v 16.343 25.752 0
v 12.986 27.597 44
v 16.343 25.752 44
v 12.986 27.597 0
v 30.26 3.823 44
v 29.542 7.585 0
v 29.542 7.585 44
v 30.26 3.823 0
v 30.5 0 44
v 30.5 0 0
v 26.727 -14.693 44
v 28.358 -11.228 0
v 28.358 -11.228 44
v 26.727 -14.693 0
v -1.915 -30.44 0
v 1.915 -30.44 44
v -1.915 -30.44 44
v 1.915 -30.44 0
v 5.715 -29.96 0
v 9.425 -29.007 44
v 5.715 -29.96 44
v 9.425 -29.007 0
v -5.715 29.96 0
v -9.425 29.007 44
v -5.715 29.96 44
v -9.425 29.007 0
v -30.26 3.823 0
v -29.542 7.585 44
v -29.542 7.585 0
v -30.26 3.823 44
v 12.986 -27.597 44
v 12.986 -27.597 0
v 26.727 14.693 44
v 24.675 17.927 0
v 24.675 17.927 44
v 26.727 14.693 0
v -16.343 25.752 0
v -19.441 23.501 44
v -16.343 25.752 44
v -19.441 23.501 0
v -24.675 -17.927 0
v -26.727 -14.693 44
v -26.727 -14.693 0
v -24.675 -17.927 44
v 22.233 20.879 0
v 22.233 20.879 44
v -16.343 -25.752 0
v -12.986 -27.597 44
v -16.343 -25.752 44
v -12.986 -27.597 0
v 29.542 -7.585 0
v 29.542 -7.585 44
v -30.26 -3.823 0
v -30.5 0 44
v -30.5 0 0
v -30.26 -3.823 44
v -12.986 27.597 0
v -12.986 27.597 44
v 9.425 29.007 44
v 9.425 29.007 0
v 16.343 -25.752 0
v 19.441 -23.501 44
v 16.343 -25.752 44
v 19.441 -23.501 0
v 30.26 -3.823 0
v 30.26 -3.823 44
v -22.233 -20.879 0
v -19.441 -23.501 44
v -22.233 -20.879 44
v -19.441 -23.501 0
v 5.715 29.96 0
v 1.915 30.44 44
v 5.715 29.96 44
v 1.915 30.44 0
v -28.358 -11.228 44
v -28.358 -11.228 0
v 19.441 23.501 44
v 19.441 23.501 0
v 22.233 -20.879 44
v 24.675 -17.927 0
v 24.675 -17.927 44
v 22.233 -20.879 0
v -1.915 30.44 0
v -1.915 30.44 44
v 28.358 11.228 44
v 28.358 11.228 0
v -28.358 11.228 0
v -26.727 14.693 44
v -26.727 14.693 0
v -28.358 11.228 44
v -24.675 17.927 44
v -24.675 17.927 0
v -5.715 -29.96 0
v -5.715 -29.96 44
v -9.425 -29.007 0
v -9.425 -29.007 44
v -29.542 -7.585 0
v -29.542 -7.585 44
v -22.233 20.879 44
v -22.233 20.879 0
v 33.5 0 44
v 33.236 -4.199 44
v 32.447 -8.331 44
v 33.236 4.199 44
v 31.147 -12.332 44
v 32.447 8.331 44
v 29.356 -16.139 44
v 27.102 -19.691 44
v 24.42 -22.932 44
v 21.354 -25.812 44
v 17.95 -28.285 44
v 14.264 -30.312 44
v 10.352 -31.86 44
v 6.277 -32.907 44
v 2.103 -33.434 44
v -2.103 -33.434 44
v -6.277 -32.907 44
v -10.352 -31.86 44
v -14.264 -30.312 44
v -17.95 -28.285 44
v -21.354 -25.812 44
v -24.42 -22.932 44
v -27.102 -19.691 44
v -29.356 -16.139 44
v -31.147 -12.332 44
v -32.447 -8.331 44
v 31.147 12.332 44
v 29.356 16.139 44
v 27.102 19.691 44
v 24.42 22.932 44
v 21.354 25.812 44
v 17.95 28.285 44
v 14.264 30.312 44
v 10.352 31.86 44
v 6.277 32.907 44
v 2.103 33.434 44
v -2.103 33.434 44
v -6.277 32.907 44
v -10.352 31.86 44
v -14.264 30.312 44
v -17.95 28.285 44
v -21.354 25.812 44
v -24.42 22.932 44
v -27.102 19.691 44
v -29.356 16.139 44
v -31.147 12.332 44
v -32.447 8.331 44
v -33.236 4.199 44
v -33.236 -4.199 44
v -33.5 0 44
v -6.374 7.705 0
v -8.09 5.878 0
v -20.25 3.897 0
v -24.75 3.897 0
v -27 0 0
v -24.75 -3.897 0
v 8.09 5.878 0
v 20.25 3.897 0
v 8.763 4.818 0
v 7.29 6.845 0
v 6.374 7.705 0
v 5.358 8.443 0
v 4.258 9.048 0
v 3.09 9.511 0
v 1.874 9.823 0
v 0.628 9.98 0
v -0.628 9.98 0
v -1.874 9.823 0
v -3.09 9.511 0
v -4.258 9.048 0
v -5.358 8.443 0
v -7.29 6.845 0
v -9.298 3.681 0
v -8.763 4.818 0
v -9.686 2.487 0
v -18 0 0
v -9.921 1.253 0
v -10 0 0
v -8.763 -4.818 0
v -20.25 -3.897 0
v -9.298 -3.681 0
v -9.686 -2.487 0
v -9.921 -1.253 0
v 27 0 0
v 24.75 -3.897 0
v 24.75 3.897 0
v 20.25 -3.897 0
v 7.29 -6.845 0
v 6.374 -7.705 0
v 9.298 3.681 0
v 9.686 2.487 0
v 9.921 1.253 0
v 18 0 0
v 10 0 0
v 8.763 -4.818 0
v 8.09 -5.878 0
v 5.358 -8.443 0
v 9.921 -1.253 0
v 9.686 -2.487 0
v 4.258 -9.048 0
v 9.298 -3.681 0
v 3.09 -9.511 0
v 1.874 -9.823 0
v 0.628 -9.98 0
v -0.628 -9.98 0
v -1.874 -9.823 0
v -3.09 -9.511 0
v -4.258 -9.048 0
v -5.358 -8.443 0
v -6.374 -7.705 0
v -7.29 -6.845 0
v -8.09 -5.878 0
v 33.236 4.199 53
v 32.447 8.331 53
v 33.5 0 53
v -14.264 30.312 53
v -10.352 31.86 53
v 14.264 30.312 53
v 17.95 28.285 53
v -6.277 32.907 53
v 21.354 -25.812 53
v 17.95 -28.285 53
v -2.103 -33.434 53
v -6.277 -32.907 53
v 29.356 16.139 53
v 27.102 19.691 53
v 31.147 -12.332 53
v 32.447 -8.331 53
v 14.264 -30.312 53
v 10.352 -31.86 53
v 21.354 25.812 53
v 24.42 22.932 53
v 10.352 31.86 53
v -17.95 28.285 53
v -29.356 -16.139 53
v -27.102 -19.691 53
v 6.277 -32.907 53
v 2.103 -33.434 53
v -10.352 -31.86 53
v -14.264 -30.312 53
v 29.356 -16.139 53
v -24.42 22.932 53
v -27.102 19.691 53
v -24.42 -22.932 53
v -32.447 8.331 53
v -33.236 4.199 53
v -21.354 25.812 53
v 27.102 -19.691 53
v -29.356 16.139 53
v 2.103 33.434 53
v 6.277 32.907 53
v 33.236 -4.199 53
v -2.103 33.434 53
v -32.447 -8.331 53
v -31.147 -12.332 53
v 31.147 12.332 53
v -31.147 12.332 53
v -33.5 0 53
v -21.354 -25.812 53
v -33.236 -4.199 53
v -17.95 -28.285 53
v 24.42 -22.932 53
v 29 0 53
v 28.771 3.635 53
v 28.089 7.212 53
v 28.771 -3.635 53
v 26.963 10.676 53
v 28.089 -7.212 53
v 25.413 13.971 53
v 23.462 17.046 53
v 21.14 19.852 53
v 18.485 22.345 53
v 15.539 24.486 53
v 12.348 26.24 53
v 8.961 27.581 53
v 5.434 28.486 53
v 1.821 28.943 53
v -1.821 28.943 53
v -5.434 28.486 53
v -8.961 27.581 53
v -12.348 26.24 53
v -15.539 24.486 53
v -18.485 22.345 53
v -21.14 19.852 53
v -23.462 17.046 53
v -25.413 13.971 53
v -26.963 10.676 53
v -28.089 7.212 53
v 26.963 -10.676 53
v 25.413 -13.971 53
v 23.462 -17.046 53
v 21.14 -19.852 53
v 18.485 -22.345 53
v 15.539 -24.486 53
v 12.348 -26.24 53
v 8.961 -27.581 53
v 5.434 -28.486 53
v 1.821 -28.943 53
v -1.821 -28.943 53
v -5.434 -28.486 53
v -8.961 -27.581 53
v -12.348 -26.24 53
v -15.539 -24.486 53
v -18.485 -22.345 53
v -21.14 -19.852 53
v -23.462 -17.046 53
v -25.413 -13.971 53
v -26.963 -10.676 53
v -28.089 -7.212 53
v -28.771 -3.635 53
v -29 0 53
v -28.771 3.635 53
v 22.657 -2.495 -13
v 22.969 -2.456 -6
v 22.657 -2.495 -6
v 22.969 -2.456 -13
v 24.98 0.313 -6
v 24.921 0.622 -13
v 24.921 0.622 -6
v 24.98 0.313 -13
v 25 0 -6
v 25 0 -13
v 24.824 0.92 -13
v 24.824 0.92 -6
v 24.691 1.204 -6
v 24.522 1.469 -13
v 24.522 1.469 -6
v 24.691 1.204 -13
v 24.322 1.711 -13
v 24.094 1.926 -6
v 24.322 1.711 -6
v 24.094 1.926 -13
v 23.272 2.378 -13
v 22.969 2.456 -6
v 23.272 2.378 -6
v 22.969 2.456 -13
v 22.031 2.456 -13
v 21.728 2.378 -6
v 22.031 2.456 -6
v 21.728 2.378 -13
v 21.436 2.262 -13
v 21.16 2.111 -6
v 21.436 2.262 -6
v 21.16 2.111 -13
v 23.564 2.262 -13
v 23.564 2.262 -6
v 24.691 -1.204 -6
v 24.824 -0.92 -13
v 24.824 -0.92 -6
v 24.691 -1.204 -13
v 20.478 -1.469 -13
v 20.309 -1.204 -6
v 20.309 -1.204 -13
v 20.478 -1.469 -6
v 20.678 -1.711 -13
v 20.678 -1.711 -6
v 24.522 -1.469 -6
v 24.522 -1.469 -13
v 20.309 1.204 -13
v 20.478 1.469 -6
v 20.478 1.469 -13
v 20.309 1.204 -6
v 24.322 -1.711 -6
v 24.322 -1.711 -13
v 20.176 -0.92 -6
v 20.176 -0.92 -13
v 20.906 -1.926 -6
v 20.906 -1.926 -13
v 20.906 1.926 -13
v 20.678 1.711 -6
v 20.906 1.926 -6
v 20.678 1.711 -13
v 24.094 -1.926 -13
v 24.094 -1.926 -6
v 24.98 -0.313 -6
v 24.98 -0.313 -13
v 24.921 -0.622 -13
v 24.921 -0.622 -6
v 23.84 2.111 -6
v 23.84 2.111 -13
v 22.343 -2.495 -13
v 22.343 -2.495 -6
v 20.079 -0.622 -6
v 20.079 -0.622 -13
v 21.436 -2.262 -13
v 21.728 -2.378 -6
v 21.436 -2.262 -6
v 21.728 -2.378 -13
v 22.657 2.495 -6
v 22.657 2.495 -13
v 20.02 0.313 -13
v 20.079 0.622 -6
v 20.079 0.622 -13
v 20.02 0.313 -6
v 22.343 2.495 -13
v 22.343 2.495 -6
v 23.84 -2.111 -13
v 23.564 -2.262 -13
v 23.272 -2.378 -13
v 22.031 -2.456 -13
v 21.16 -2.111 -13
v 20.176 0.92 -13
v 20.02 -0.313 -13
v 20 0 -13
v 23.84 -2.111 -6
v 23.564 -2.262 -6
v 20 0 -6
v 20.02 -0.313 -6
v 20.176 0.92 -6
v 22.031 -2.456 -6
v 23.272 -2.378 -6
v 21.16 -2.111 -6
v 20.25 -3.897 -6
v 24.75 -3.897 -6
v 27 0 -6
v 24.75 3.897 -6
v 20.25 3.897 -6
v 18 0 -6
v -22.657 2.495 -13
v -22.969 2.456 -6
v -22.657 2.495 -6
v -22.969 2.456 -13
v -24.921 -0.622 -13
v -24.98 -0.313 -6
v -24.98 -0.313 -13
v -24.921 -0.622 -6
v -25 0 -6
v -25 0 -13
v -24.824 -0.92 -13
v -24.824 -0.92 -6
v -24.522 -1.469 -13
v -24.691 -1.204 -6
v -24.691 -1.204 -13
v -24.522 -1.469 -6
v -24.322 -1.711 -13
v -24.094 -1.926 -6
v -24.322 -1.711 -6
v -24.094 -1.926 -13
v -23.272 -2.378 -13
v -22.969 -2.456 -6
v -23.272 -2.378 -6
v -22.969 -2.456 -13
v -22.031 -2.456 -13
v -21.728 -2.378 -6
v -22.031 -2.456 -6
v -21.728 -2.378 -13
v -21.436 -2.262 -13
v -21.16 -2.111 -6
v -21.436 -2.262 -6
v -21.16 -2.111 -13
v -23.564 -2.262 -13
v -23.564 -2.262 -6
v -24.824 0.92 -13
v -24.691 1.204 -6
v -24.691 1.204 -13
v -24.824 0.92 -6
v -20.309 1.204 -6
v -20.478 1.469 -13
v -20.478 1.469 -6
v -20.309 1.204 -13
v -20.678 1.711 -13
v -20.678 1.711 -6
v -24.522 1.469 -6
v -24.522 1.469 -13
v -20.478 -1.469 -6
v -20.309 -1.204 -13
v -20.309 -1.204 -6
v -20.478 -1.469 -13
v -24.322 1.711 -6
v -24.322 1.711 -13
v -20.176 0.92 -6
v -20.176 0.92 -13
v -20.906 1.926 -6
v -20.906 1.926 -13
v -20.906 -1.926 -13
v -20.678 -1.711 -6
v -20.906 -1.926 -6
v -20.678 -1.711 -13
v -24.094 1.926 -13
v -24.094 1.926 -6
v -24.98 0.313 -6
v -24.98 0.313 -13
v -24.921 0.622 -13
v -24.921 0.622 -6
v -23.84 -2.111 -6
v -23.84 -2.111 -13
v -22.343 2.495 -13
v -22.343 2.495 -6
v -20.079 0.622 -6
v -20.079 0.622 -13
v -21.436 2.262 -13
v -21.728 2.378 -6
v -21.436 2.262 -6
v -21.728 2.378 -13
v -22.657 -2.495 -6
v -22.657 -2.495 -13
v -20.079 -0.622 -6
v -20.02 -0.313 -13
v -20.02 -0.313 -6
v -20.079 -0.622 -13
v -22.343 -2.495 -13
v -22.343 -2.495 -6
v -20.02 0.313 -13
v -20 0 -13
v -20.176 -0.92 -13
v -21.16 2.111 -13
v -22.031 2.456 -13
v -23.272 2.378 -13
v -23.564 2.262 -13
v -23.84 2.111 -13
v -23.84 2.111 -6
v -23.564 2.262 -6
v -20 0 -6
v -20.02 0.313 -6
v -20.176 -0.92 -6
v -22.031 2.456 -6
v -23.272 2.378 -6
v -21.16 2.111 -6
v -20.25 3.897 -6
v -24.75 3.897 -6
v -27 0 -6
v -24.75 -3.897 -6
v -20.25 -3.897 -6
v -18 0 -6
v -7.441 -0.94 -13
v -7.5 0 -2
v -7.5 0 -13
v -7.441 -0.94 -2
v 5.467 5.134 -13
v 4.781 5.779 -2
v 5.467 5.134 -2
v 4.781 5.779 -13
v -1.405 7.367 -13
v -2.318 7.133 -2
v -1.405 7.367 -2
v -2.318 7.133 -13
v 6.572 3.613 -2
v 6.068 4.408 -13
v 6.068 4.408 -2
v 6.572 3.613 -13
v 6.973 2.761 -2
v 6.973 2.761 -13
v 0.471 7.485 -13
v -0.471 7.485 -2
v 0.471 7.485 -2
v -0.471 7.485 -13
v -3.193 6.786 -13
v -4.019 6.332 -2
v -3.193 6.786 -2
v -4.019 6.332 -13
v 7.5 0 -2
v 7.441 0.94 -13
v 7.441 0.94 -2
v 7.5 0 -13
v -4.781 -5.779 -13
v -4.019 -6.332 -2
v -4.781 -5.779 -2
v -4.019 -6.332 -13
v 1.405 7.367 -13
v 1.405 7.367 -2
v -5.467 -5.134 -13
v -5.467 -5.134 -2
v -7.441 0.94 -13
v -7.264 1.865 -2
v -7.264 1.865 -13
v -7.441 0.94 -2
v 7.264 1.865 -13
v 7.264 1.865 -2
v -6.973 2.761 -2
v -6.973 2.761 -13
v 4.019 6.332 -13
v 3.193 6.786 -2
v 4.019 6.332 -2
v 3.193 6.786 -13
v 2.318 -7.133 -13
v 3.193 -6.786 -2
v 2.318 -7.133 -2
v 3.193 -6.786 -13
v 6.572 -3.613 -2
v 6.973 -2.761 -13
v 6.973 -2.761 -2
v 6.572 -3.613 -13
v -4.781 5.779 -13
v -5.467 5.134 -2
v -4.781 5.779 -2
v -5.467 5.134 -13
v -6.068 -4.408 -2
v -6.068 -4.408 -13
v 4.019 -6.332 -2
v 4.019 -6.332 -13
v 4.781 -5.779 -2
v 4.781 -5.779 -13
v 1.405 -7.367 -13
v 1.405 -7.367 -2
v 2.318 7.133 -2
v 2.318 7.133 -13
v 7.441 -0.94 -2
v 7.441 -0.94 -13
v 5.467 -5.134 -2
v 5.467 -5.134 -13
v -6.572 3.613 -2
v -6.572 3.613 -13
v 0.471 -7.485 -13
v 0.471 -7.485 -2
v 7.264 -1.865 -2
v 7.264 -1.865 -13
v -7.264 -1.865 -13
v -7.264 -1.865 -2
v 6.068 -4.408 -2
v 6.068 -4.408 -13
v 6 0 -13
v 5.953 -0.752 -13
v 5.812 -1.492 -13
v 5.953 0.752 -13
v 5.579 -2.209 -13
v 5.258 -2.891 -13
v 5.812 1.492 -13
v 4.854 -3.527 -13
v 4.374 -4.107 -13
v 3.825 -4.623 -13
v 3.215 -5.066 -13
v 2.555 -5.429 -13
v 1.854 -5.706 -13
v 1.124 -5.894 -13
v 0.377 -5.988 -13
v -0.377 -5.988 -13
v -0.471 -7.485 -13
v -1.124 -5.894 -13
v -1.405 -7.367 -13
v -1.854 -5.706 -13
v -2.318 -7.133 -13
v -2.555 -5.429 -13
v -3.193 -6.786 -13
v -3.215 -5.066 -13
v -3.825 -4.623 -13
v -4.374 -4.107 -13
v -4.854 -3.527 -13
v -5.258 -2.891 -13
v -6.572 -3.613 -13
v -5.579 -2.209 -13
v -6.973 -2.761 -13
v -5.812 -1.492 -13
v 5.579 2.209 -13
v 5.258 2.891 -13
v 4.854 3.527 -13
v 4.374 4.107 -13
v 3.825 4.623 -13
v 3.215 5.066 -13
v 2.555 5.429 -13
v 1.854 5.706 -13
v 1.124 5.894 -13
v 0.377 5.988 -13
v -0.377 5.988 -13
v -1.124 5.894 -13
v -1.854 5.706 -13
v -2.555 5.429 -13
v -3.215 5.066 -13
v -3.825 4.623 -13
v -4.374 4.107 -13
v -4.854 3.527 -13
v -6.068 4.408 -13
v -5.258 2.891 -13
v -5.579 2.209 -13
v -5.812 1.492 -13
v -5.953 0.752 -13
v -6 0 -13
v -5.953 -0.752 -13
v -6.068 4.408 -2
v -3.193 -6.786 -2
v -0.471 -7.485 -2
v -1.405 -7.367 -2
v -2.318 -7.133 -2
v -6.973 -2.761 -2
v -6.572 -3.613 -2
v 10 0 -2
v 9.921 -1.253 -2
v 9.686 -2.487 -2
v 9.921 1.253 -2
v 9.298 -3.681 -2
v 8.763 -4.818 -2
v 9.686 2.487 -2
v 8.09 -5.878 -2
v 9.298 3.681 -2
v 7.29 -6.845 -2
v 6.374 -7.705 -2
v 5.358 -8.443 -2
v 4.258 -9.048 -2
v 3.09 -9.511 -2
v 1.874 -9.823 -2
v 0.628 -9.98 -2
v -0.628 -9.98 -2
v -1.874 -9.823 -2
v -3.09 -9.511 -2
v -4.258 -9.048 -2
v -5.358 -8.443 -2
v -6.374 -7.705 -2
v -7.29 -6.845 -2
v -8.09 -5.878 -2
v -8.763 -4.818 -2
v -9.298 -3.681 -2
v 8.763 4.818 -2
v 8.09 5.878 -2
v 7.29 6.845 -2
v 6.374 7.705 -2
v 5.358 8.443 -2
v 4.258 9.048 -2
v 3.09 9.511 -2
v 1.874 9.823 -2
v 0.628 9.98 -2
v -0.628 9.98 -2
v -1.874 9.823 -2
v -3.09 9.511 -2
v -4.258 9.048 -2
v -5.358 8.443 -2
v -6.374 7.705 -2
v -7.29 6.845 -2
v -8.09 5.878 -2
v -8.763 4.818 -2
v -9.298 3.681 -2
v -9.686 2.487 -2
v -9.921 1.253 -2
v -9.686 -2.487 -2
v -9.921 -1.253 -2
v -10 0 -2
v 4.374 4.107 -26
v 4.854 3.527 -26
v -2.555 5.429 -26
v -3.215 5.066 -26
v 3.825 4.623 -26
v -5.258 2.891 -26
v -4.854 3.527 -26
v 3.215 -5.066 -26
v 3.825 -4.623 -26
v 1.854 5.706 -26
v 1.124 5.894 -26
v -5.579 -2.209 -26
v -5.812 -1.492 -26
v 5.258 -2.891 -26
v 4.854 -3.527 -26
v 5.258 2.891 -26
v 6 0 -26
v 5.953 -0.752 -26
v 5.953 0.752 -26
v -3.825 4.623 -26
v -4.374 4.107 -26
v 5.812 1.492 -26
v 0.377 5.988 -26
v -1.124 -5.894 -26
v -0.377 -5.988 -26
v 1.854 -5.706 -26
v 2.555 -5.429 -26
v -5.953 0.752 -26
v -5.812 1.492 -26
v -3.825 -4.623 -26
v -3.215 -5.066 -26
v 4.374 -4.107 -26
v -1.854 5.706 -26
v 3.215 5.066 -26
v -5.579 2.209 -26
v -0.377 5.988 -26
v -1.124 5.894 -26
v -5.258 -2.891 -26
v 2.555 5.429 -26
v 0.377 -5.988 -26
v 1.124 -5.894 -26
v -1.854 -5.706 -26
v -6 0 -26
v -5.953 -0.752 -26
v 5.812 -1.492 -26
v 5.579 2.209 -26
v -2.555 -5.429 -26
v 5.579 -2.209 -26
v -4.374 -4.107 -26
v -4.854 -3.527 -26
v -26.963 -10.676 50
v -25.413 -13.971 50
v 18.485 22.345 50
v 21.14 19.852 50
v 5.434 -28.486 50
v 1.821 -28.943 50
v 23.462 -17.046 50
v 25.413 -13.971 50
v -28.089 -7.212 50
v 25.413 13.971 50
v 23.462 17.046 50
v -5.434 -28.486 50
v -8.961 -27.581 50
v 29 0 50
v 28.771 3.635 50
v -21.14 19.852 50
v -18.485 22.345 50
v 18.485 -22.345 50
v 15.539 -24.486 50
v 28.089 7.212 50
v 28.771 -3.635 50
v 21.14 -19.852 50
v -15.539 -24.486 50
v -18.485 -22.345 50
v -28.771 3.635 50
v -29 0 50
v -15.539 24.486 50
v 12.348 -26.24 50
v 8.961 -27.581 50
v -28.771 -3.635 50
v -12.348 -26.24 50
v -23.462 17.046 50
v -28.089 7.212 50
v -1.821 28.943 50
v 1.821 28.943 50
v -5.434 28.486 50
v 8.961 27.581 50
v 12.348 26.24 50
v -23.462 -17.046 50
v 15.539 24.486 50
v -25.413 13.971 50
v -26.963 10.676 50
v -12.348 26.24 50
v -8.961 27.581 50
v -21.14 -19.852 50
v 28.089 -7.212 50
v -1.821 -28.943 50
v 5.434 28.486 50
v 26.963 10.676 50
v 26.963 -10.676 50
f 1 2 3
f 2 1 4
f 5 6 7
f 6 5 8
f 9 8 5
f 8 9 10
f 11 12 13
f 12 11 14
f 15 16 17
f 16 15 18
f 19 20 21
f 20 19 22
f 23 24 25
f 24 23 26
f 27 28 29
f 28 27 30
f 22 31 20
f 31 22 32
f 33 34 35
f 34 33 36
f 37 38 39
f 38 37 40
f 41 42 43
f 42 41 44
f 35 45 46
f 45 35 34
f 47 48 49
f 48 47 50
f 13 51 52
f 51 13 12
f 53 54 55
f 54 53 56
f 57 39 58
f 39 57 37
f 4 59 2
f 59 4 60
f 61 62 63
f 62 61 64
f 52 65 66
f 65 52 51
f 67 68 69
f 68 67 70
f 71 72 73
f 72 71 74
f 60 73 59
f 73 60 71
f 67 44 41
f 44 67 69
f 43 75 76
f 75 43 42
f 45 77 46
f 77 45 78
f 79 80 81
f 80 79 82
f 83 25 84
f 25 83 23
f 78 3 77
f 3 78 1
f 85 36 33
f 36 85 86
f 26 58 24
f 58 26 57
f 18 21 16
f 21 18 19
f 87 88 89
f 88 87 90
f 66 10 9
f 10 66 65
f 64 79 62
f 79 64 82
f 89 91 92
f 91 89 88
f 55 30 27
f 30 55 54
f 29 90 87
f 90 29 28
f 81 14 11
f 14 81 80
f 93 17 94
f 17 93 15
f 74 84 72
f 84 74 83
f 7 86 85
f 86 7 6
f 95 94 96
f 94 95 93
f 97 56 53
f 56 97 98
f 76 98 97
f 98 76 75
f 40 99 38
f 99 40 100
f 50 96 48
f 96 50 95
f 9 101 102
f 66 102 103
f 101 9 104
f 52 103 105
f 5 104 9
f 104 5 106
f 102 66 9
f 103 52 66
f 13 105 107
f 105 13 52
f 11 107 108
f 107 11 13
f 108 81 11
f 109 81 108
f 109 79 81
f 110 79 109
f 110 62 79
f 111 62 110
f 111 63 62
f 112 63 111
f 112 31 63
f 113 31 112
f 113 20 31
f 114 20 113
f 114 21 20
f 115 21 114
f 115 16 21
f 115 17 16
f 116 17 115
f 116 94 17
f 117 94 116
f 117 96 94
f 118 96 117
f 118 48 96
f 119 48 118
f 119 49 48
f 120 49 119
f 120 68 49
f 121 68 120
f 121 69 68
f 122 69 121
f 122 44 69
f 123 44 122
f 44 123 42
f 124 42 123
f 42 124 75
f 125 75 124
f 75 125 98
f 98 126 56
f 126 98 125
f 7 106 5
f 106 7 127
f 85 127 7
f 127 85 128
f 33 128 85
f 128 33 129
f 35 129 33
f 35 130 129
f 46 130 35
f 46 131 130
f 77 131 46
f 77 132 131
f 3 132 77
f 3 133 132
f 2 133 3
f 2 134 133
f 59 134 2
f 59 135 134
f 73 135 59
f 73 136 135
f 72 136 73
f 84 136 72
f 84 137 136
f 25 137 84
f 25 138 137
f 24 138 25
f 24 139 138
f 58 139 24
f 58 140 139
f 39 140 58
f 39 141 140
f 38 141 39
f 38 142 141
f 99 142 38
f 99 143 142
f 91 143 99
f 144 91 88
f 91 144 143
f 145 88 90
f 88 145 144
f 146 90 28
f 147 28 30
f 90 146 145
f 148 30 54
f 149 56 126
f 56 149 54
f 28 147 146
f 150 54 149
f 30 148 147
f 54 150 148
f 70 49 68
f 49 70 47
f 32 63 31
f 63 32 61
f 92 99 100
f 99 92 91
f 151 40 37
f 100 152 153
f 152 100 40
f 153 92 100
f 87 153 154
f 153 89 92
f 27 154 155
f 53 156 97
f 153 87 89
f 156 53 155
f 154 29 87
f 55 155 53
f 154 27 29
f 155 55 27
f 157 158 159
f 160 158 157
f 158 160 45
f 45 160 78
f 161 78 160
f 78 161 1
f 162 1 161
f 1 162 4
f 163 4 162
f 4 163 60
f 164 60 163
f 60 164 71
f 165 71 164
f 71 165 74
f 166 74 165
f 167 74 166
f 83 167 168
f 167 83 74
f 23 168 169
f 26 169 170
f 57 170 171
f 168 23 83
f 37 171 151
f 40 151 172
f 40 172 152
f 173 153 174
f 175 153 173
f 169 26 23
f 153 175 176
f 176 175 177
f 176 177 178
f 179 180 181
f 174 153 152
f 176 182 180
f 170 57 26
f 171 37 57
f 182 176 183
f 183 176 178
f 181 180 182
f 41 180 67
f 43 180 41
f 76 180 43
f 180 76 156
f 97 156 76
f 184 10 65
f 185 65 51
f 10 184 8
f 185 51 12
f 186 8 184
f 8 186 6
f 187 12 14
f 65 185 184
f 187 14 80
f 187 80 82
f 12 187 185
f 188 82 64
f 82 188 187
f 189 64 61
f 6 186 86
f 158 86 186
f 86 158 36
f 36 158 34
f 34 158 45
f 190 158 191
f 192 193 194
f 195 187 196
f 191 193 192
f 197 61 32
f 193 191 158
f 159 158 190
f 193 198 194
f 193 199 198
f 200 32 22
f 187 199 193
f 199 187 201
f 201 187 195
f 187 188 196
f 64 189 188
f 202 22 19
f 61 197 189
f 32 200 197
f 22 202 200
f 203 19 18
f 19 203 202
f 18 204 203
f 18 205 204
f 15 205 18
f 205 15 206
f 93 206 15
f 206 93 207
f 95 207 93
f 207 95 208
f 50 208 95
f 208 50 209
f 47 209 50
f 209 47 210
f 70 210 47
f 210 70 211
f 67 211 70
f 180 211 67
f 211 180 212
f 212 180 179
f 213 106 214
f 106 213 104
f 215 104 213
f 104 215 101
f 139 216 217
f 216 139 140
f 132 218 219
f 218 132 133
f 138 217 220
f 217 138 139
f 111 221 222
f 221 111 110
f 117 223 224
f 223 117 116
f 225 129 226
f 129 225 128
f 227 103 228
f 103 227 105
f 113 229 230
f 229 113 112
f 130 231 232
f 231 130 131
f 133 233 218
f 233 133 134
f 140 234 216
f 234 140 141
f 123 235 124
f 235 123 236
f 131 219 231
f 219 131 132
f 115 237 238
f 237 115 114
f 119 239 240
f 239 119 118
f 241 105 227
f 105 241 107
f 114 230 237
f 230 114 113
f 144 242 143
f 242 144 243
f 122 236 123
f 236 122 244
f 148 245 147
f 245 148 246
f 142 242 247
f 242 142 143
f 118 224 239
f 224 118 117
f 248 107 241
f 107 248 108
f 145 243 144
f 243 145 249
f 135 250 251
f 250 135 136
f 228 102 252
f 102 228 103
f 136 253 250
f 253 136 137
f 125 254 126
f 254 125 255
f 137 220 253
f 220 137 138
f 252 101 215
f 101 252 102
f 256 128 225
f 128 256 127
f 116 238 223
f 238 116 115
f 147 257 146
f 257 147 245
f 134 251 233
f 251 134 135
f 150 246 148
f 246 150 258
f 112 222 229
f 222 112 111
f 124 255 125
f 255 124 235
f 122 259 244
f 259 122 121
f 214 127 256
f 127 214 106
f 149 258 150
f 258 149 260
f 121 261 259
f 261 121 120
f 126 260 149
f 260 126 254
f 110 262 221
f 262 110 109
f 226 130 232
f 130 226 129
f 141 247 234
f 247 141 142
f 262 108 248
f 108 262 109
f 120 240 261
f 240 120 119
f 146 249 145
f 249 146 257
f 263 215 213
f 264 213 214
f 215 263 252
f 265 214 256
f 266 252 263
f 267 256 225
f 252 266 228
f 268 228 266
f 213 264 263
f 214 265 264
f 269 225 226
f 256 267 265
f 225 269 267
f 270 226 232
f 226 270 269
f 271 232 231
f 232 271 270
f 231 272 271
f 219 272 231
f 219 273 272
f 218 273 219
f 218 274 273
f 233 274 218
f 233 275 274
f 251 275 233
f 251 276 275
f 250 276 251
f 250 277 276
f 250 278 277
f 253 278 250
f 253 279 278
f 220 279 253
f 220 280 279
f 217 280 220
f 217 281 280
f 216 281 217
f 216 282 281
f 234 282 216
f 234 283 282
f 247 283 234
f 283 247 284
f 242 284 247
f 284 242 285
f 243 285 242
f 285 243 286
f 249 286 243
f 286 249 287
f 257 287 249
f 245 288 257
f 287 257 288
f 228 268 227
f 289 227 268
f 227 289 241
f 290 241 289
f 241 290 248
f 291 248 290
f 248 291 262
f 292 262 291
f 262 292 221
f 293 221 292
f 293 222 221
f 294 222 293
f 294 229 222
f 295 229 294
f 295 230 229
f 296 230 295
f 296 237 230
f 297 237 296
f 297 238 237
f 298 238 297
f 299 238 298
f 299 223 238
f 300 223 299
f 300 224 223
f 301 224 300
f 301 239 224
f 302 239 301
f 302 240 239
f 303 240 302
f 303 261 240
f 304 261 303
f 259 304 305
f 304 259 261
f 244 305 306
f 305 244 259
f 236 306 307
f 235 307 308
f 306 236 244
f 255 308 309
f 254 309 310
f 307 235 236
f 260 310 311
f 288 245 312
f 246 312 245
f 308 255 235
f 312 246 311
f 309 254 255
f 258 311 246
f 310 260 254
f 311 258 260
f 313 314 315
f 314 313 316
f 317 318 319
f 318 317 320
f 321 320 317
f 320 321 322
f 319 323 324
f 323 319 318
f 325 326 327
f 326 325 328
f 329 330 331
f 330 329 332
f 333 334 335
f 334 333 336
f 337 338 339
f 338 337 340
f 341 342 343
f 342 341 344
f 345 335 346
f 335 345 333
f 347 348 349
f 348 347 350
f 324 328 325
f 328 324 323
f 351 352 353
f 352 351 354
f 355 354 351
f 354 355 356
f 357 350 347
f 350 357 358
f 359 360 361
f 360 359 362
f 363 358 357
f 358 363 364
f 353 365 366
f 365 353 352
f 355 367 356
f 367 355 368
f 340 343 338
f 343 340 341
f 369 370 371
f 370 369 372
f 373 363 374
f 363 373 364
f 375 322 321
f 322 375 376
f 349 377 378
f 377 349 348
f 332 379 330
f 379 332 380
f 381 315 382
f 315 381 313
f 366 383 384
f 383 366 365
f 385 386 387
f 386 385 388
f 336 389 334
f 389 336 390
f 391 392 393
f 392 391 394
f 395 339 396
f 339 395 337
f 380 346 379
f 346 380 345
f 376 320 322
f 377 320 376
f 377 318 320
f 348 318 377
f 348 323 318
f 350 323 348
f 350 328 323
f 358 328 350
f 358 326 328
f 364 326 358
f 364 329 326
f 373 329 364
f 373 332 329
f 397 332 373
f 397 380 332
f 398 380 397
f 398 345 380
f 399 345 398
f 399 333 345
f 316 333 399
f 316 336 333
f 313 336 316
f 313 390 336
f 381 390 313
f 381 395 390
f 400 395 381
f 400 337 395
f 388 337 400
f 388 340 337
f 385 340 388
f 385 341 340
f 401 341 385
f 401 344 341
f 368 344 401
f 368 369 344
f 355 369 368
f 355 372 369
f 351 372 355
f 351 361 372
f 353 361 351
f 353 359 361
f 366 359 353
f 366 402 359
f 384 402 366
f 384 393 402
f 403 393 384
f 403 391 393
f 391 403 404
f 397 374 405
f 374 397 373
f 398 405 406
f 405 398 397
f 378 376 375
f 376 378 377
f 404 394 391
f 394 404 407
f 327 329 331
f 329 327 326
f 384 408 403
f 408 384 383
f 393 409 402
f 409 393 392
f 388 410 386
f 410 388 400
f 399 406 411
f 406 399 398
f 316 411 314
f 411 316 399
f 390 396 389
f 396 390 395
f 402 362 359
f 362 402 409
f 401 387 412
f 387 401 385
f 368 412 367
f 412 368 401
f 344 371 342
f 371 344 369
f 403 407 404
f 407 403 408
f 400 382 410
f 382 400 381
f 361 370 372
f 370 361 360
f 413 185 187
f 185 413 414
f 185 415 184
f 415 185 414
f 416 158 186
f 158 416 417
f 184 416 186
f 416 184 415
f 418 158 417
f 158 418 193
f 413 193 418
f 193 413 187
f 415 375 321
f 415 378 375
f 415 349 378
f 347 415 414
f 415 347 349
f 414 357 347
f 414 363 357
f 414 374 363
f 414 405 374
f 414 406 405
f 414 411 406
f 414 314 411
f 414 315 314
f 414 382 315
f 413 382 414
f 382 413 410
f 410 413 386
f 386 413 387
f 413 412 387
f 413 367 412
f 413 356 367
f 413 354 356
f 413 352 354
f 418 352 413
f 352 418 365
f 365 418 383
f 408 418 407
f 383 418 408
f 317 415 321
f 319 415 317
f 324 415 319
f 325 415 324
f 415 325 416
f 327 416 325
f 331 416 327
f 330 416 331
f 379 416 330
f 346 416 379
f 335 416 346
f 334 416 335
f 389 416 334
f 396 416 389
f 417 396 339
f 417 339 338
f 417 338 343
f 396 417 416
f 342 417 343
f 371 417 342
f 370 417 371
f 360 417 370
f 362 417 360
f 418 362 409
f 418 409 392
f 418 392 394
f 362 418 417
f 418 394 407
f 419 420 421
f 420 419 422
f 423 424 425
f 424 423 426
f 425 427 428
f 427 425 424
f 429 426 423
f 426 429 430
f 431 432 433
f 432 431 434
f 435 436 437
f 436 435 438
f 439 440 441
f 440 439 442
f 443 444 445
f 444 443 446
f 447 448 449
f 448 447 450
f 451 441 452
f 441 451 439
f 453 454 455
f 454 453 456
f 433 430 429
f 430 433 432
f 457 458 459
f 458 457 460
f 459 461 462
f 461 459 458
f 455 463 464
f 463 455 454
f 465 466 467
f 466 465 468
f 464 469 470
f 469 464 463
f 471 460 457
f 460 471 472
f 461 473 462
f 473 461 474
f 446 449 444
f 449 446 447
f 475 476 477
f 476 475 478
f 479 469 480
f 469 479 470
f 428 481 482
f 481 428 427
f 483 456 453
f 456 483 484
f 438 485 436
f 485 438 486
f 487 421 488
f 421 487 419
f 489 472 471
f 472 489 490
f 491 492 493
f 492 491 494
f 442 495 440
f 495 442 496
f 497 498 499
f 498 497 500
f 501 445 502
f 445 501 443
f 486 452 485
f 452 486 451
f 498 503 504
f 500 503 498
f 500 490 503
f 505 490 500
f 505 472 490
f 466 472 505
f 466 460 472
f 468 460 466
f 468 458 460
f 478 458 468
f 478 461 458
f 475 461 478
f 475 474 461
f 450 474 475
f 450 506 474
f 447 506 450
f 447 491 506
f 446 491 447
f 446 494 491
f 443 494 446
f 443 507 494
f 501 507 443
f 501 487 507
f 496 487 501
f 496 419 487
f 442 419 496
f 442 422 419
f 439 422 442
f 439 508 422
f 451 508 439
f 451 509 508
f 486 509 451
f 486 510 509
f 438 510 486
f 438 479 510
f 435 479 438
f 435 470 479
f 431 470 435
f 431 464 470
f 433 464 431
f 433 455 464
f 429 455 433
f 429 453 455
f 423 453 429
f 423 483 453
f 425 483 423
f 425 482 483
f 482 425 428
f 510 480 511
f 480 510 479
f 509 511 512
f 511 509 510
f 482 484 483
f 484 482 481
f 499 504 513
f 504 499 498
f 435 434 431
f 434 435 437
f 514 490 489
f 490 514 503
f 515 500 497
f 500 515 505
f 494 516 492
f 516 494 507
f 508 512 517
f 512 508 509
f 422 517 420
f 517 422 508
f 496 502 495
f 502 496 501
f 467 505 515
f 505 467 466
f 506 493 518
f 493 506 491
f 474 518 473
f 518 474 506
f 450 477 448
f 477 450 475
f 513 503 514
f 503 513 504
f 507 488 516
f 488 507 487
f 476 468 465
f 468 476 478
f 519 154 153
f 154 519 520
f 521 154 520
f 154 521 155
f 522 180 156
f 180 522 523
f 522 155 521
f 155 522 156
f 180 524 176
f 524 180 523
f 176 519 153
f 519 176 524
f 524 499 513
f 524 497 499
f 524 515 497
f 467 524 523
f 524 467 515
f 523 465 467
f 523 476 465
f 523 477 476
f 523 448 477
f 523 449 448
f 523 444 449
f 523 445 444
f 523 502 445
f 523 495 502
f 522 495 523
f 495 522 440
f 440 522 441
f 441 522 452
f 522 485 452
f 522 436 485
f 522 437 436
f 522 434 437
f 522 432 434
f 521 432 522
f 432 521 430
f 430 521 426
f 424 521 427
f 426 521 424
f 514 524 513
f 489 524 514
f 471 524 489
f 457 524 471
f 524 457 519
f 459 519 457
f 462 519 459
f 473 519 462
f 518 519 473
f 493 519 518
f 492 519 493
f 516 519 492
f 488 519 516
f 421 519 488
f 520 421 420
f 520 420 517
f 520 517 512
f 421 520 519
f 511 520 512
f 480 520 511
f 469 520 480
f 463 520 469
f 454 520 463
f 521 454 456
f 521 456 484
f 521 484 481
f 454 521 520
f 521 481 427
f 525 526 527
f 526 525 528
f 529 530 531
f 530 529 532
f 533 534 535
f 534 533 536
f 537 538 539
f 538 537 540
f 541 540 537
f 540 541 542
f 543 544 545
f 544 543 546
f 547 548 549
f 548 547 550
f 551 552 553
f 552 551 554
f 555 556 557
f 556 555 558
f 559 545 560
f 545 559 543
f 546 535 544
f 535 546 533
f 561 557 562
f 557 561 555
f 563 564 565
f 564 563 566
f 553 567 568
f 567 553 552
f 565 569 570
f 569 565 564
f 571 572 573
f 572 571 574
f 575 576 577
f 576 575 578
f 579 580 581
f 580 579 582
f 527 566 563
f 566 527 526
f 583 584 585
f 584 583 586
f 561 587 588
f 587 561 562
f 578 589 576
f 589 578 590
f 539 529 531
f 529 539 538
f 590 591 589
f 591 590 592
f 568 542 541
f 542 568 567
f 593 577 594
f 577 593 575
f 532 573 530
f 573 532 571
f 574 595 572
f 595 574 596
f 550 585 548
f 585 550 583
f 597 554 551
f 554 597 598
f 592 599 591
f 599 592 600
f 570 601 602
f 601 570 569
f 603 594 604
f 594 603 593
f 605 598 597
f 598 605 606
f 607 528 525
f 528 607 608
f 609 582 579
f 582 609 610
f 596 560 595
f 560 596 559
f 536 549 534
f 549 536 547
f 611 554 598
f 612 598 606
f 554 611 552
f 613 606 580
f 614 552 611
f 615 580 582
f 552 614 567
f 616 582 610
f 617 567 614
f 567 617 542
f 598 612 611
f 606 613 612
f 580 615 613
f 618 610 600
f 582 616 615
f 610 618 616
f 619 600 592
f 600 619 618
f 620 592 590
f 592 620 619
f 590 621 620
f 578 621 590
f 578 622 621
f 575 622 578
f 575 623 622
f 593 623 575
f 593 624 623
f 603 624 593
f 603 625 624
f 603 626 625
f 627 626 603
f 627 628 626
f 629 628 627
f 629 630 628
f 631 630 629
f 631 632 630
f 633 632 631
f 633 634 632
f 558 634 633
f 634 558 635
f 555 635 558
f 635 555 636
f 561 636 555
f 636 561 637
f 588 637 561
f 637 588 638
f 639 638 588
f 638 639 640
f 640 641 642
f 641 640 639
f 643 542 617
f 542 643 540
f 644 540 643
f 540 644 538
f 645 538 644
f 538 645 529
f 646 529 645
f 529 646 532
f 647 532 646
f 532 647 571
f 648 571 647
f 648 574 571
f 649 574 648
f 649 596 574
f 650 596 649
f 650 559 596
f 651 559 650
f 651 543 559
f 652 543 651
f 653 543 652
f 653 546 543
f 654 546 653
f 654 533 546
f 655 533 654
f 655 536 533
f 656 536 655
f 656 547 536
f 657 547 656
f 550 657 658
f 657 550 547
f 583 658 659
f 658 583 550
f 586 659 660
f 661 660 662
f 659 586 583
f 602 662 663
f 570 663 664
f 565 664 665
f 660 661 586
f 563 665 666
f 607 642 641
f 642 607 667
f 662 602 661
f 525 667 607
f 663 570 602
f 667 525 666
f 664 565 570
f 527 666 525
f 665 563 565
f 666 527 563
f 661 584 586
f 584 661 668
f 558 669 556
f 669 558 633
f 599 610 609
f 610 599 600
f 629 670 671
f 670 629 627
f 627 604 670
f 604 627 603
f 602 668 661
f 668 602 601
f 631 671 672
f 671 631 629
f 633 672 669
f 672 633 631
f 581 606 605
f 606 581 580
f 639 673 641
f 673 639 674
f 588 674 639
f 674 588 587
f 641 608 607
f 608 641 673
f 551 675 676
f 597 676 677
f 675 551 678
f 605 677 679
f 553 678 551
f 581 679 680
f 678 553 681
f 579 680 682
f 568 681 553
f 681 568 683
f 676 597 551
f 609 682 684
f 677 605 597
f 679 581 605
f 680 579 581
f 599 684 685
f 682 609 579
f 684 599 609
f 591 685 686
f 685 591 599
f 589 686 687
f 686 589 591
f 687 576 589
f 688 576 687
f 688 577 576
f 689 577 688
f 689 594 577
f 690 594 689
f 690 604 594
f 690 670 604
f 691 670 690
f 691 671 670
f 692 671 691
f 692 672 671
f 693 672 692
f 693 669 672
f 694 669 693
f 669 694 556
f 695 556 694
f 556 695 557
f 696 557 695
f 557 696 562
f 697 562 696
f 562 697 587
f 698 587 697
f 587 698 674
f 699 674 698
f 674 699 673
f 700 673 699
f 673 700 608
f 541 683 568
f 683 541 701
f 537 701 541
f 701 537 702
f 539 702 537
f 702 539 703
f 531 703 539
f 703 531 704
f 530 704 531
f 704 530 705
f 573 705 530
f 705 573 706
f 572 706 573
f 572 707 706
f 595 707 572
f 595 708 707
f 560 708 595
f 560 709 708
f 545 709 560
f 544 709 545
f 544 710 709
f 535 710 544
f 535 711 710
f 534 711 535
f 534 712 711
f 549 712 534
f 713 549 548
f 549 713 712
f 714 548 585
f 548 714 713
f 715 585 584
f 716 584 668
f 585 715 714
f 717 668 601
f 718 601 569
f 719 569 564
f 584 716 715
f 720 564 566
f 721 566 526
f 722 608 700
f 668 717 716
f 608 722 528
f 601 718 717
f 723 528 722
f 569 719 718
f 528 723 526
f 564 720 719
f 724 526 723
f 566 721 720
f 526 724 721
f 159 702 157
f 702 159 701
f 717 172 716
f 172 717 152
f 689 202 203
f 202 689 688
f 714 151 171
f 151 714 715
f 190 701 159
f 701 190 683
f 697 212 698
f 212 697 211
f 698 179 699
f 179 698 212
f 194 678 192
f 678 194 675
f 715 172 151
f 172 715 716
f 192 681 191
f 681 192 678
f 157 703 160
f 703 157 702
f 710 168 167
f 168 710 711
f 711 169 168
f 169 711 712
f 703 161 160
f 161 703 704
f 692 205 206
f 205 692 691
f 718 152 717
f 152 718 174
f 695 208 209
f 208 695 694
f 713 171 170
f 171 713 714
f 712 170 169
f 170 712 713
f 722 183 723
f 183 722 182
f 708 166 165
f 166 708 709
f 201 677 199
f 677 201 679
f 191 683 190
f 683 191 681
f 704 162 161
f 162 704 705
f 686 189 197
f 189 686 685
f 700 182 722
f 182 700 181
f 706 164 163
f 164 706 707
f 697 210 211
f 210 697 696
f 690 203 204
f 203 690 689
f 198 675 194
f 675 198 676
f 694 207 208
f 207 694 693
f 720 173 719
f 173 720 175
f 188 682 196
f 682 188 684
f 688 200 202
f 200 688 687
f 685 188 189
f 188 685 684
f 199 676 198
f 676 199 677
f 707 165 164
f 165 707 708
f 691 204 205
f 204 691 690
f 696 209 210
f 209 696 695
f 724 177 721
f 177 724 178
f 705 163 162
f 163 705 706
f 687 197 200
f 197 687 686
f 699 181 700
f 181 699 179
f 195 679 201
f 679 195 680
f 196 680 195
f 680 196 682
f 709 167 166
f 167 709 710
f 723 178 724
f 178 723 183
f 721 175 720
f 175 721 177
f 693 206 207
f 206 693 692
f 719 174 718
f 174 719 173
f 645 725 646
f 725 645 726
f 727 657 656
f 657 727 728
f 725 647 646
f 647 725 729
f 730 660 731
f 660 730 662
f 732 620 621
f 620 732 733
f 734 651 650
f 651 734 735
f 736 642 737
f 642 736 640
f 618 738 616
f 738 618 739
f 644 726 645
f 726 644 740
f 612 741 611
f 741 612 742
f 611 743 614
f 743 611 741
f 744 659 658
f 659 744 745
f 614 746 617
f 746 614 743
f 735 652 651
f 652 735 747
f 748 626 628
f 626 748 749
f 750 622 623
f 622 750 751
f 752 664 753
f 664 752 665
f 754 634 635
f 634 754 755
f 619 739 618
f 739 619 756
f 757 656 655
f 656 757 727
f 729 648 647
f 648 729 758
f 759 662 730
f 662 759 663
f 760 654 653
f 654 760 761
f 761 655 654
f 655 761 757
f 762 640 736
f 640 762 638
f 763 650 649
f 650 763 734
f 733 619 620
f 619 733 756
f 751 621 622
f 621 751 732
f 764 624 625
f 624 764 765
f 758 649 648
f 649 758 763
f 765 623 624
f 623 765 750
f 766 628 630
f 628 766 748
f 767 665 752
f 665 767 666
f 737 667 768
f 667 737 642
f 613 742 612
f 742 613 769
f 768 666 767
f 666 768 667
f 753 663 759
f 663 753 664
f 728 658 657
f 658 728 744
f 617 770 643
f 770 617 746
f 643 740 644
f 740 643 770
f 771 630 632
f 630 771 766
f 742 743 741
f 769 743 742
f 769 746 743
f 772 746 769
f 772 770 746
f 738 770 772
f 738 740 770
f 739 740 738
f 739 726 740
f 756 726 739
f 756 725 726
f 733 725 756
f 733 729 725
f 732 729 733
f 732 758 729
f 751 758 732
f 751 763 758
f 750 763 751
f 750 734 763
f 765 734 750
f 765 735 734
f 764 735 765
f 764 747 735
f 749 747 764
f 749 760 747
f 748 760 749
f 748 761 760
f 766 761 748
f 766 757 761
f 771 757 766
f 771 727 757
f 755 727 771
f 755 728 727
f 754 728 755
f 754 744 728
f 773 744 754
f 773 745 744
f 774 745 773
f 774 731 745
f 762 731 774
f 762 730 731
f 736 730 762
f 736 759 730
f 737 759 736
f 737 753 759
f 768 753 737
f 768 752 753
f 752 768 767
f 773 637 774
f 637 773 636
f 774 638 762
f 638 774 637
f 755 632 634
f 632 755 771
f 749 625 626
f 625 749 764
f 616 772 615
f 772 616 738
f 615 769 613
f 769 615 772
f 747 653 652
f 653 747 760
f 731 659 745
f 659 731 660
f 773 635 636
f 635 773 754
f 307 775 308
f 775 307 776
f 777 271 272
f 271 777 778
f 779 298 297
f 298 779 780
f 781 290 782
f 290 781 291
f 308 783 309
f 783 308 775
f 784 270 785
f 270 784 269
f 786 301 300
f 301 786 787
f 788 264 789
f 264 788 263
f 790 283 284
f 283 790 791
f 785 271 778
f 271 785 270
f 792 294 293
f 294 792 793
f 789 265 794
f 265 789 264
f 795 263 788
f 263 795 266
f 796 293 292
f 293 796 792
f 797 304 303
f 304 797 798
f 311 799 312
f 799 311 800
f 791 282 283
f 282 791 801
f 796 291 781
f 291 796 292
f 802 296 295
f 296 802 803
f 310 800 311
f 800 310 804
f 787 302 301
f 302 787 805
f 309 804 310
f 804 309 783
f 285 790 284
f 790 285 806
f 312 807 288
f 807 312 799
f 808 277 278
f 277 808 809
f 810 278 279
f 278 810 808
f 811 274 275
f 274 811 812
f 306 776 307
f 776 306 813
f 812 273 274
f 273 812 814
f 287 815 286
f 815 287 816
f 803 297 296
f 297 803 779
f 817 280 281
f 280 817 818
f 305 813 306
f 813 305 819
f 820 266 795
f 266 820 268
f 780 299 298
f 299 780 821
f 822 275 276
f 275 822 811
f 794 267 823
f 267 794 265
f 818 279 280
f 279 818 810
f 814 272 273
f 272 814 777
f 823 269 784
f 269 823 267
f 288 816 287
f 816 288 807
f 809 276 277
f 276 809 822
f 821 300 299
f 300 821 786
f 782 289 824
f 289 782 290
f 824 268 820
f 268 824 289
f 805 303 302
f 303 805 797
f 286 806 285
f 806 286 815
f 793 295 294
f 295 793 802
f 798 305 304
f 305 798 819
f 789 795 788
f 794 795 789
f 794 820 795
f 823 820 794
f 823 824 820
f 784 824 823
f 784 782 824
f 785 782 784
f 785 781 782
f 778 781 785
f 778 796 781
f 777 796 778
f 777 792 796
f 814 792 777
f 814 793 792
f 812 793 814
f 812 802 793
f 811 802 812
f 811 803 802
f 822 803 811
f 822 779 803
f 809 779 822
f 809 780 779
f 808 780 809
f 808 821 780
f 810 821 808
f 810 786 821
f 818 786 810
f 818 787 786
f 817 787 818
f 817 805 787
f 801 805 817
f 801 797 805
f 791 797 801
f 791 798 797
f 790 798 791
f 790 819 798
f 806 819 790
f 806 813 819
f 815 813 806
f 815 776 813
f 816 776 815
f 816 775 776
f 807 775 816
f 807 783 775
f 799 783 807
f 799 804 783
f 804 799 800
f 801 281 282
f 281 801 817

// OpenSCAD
// file: vbracket.scad
/*
  author: Christopher O'Brien  <obriencj@gmail.com>
  license: GPL v.3
*/



module v_bracket_holes(thick=2.1,
		       gauge_hole_r=3.25, x_hole_space=45,
		       bottom_hole_r=5, y_hole_space=50,
		       cable_hole_r=14,
		       $fn=50) {

     b_offset = x_hole_space / 2;

     translate([0, 0, -0.5]) {
	  if(gauge_hole_r > 0) {
	       translate([b_offset, y_hole_space, 0]) {
		    cylinder(thick+1, r=gauge_hole_r);
	       };
	       translate([-b_offset, y_hole_space, 0]) {
		    cylinder(thick+1, r=gauge_hole_r);
	       };
	  };
	  if(bottom_hole_r > 0) {
	       cylinder(thick+1, r=bottom_hole_r);
	  };

	  // these holes aren't visibile normally, as the V bracket
	  // subtracts the area they'd be in.
	  hull() {
	       small_r = (44 - 26) / 2;
	       translate([0, 30, 0]) {
		    cylinder(thick+1, r=small_r);
	       };

	       translate([0, y_hole_space, 0]) {
		    cylinder(thick+1, r=cable_hole_r);
	       };
	  };
     };
}



module simplified_bracket(thick=2.1,
			  gauge_hole_r=3.25, x_hole_space=45,
			  bottom_hole_r=5, y_hole_space=50,
			  cable_hole_r=14,
			  $fn=50) {

     difference() {
	  linear_extrude(thick) {
	       hull() {
		    circle(r=20/2);
		    translate([0, y_hole_space, 0]) {
			 circle(r=(15 + y_hole_space) / 2);
		    };
	       };
	  };

	  v_bracket_holes(thick, gauge_hole_r, x_hole_space,
			  bottom_hole_r, y_hole_space, cable_hole_r,
			  $fn=$fn);
     };
}


module v_bracket(thick=2.1,
		 gauge_hole_r=3.25, x_hole_space=45,
		 bottom_hole_r=5, y_hole_space=50,
		 $fn=50) {
     /*
       this is the V-shaped bracket that comes with the 2.5" DCC Mini
       Gauges by default.
     */

     // todo: let's make this less of a mess.

     // distance between bolts, split in half since we'll duplicate
     b_offset = x_hole_space / 2;

     difference() {
	  union() {
	       hull() {
		    cylinder(thick, r=20/2);
		    translate([b_offset, y_hole_space, 0]) {
			 cylinder(thick, r=15/2);
		    };
	       };
	       hull() {
		    cylinder(thick, r=20/2);
		    translate([-b_offset, y_hole_space, 0]) {
			 cylinder(thick, r=15/2);
		    };
	       };
	  };

	  // the interior rounded V of the bracket
	  translate([0, 0, -0.5]) {
	       hull() {
		    small_r = (44 - 26) / 2;
		    translate([0, 30, 0]) {
			 cylinder(thick+1, r=small_r);
		    };
		    translate([0, 58, 0]) {
			 cylinder(thick+1, r=32/2);
		    };
	       };
	  };

	  v_bracket_holes(thick,
			  gauge_hole_r, x_hole_space,
			  bottom_hole_r, y_hole_space,
			  $fn=$fn);
     };
}


v_bracket();


// The end.
// file: ../utils/copies.scad
/*
  author: Christopher O'Brien  <obriencj@gmail.com>
  license: GPL v3
*/


module copy_mirror(x=1, y=0, z=0) {
     children();
     mirror([x, y, z]) children();
}


module copy_translate(x=0, y=0, z=0, copies=1) {
     for(i = [0:copies]) {
	  translate([x * i, y * i, z * i]) {
	       children();
	  };
     };
}


module copy_rotate(x=0, y=0, z=0, copies=1) {
     for(i = [0:copies]) {
	  rotate([x * i, y * i, z * i]) {
	       children();
	  };
     };
}


// The end.
// main file
/*
  author: Christopher O'Brien  <obriencj@gmail.com>
  license: GPL v.3
*/


use <../utils/copies.scad>;
use <vbracket.scad>;


module gauge_cable_plug(height=23, thread=13) {
     /*
       A speedo or tacho cable connector.
     */

     stub = height - thread;

     color("Gold") {
	  cylinder(thread, r=12/2);
     }

     color("Silver") {
	  translate([0, 0, thread]) {
	       cylinder(stub-2, r=15/2);
	  };
	  translate([0, 0, thread + stub - 2]) {
	       cylinder(2, r=20/2);
	  };
     };
}


module mini_gauge(bracket=false, $fn=50) {
     /*
       Basic representation of the 2.5" DCC Mini Gauges
     */

     rim_r = 67 / 2;
     rim_h = 9;

     body_r = 61 / 2;
     body_h = 53 - rim_h;

     // mounting bolt, overall
     bolt_r = 5 / 2;
     bolt_l = 13;
     bolt_offset = 45 / 2;

     // bump, washer, and nut
     bolt_lost_r = 9 / 2;
     bolt_lost_l = 6;

     // the inset glass face
     rim_brim = 4.5;  // how
     face_r = rim_r - rim_brim;
     face_inset = 3;

     plug_height = 26;
     plug_thread = 13;

     difference() {
	  union() {
	       color("Silver") {

		    // primary housing
		    cylinder(body_h, r=body_r);

		    // top rim
		    translate([0, 0, body_h]) {
			 cylinder(rim_h, r=rim_r);
		    }
	       };

	       // bolts
	       copy_rotate(z=180) {
		    // the overall length of the bolt from the
		    // body
		    color("Gold") {
			 translate([bolt_offset, 0, -bolt_l]) {
			      cylinder(bolt_l, r=bolt_r);
			 };
		    };

		    color("Silver") {
			 // the body has a raised area the bolts
			 // protrude from, plus a mandatory nut and
			 // washer to hold the internals in place. The
			 // remainder is for mounting the unit.
			 translate([bolt_offset, 0, -bolt_lost_l]) {
			      cylinder(bolt_lost_l, r=bolt_lost_r, $fn=6);
			 };
		    };
	       };

	       translate([0, 0, -plug_height]) {
		    gauge_cable_plug(height=plug_height, thread=plug_thread);
	       };
	  };

	  // subtract for inset face
	  translate([0, 0, (body_h + rim_h) - face_inset]) {
	       cylinder(face_inset + 1, r=face_r);
	  };
     };

     if (bracket == true) {
	  bracket_thick = 2.1;
	  bracket_down = bolt_lost_l + bracket_thick;

	  translate([0, 0, -bracket_down]) {
	       color("Silver") v_bracket(thick=bracket_thick);
	  };

	  bracket_bolt_l = 4.8;
	  bracket_bolt_down = bracket_down + bracket_bolt_l;

	  copy_rotate(z=180) {
	       color("Silver") {
		    translate([bolt_offset, 0, -bracket_bolt_down]) {
			 cylinder(bracket_bolt_l, r=bolt_lost_r, $fn=6);
		    };
	       };
	  };
     };
}


mini_gauge(bracket=false);


// The end.
